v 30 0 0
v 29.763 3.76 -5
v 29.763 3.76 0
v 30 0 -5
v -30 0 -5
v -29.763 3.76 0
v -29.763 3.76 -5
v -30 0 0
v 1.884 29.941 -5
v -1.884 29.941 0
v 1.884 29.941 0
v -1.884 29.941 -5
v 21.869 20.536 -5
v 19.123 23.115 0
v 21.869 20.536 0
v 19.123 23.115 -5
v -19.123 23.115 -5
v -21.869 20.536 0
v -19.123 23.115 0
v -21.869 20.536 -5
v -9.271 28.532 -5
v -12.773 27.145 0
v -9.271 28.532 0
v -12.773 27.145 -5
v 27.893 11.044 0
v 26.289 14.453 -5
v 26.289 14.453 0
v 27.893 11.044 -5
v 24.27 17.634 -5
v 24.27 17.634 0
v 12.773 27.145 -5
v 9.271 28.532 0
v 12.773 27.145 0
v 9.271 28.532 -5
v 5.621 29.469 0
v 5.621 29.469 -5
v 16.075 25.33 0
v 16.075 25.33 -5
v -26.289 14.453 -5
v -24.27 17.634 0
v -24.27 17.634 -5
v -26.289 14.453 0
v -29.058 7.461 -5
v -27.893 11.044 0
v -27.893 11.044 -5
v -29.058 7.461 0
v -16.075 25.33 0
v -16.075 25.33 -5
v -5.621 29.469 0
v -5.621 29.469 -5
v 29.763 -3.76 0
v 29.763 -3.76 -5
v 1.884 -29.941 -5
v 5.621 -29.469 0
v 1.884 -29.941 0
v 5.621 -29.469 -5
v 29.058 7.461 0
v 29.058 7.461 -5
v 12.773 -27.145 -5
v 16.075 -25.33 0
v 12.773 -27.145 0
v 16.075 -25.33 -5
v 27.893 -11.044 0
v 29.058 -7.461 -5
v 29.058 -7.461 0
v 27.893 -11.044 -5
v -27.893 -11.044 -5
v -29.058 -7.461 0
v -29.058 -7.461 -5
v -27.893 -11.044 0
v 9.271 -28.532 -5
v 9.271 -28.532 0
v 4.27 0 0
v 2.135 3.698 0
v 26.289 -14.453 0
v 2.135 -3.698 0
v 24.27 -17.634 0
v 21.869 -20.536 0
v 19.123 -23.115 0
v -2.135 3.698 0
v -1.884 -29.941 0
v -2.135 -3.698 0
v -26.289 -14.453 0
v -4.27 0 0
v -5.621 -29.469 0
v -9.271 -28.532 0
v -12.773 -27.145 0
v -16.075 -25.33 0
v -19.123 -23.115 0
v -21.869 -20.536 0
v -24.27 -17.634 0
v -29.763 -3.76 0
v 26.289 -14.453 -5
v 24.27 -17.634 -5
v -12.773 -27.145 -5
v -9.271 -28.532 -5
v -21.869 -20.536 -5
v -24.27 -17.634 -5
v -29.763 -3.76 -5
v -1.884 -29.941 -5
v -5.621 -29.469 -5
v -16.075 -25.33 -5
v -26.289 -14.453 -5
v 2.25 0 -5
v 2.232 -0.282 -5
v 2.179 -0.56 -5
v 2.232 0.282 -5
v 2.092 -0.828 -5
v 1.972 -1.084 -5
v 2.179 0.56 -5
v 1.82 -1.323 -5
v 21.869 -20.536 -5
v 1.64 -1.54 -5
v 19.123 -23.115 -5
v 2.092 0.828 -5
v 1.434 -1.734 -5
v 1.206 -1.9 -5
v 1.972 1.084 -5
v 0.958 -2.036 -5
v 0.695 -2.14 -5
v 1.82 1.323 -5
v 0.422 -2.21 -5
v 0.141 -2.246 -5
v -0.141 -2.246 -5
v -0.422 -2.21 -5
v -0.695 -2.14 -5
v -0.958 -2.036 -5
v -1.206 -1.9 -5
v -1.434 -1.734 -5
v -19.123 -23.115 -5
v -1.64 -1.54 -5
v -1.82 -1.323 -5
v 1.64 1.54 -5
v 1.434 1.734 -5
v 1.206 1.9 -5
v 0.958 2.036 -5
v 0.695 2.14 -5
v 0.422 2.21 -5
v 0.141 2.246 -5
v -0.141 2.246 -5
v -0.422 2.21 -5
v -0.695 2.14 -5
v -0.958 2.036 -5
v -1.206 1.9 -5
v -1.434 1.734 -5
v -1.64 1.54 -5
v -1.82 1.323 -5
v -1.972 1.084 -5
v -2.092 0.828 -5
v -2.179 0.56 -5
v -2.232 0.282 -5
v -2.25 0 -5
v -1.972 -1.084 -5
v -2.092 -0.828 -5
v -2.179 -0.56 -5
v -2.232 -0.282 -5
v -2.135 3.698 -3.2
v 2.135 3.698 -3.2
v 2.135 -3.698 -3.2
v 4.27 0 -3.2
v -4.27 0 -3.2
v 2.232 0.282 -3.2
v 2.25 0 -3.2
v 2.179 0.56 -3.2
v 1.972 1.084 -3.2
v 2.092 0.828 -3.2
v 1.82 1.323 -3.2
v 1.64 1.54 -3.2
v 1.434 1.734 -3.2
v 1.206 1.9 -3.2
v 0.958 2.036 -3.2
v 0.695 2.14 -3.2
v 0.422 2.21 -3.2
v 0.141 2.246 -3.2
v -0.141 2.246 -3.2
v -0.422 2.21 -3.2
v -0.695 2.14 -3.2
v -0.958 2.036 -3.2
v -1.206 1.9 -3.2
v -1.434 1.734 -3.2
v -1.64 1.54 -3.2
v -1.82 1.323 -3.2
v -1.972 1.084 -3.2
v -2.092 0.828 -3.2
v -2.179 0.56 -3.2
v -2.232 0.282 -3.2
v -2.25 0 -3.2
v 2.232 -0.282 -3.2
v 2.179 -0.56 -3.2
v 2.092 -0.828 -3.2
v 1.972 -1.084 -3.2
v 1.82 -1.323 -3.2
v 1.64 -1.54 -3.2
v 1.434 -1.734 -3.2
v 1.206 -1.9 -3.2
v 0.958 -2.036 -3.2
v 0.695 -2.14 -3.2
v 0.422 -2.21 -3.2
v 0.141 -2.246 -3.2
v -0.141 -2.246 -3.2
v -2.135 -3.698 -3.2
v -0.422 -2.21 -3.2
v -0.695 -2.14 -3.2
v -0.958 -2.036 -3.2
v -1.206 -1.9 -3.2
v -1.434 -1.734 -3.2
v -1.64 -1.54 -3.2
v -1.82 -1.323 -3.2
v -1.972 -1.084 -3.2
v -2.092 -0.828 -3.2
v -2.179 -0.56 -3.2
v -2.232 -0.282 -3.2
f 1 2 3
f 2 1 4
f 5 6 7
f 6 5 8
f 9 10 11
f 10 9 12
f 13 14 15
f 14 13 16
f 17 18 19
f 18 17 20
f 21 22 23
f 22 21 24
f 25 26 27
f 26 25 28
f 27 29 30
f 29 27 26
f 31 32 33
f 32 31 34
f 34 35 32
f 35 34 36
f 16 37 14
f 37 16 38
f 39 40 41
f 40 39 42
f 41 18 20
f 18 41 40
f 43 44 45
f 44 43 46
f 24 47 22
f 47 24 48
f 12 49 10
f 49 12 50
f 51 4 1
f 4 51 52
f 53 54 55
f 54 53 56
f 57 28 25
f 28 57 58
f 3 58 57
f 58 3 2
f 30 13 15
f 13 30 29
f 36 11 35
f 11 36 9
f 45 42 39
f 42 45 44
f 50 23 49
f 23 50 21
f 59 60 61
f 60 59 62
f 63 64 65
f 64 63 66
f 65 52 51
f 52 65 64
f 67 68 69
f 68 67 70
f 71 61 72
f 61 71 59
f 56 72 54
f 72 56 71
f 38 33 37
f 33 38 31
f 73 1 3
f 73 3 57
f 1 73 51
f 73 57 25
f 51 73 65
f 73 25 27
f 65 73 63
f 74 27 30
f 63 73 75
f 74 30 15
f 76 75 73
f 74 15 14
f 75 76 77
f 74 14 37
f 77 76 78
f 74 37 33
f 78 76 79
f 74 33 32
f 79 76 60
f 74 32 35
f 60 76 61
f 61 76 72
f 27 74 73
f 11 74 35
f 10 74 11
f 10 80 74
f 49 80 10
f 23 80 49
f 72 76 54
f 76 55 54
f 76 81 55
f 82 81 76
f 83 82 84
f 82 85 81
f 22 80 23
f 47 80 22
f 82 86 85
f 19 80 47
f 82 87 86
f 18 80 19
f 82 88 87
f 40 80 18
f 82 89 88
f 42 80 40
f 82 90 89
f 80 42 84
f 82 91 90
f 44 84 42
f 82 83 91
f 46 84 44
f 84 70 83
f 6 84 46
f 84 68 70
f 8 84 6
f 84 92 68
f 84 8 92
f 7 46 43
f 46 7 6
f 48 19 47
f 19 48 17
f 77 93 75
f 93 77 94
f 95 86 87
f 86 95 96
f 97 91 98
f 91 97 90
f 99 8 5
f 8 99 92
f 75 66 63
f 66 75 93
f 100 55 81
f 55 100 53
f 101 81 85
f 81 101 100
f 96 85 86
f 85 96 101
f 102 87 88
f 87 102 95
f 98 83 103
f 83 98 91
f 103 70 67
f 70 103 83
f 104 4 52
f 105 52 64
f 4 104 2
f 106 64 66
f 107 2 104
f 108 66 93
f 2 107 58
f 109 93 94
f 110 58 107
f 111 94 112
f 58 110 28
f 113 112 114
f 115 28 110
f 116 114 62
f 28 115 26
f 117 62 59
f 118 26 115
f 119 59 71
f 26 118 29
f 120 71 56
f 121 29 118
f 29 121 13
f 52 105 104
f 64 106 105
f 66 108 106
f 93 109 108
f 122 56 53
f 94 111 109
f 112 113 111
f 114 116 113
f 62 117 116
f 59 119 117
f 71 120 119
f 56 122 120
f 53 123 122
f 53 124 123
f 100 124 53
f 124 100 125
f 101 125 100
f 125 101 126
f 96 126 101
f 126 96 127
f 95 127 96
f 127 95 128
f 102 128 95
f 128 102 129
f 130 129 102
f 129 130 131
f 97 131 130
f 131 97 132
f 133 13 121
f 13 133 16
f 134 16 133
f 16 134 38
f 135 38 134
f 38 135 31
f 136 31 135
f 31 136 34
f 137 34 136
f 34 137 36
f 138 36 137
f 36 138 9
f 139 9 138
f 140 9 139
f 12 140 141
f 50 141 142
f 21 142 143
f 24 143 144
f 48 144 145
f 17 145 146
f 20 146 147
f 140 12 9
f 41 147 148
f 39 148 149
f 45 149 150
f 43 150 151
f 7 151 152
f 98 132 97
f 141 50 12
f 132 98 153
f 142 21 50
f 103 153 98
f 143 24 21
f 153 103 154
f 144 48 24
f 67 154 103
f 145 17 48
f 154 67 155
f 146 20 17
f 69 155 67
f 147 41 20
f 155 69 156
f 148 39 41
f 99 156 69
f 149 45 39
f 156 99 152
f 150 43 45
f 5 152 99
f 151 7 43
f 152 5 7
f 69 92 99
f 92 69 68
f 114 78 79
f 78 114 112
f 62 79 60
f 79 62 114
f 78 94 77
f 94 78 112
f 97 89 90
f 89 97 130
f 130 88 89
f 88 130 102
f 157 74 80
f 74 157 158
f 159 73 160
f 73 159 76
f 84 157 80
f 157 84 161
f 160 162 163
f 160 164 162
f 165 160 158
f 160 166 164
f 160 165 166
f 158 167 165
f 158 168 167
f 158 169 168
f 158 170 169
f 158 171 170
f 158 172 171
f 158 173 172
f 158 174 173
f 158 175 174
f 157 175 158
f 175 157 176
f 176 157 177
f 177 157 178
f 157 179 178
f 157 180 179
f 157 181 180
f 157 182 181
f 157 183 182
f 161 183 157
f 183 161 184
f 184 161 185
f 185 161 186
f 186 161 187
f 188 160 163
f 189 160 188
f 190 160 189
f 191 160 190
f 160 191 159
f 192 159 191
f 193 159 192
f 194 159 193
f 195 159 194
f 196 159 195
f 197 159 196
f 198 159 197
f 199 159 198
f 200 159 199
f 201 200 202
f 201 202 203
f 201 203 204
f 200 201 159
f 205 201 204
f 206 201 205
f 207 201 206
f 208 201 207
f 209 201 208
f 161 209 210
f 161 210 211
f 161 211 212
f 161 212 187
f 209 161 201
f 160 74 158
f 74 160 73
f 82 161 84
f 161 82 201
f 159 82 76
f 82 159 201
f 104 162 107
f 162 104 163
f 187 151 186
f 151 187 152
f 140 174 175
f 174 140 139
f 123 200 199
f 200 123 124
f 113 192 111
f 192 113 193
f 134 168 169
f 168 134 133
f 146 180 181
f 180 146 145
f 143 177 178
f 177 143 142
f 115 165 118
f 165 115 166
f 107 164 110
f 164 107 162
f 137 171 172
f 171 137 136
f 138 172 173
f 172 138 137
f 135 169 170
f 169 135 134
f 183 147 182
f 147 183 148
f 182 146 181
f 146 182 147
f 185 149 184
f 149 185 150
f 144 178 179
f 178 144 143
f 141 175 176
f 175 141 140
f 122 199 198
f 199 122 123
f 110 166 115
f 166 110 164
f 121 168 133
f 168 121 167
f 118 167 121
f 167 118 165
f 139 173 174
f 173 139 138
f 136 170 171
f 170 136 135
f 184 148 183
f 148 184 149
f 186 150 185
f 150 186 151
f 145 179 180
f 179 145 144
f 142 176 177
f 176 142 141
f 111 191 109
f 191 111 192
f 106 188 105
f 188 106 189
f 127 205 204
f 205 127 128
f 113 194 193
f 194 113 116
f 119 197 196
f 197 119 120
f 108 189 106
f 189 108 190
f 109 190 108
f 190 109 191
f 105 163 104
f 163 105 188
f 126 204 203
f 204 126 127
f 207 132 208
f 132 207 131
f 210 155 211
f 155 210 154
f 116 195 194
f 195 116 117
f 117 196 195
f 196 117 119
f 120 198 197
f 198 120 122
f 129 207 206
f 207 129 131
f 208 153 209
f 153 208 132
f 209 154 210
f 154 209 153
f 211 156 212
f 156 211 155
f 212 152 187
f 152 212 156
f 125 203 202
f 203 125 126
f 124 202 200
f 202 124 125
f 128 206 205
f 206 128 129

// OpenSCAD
$fn = 50;


difference() {
	union() {
		translate(v = [0, 0, -5.0000000000]) {
			cylinder(h = 5.0000000000, r = 30.0000000000);
		}
		translate(v = [0, 0, -3.5000000000]) {
			cylinder(h = 3.5000000000, r = 2.8750000000);
		}
	}
	union() {
		translate(v = [0, 0, 0]) {
			rotate(a = [0, 0, 0]) {
				difference() {
					union() {
						translate(v = [0, 0, -3.2000000000]) {
							#linear_extrude(height = 3.2000000000) {
								polygon(points = [[4.2698000000, 0.0000000000], [2.1349000000, 3.6977552691], [-2.1349000000, 3.6977552691], [-4.2698000000, 0.0000000000], [-2.1349000000, -3.6977552691], [2.1349000000, -3.6977552691]]);
							}
						}
					}
					union();
				}
			}
		}
		#translate(v = [0, 0, -100.0000000000]) {
			cylinder(h = 200, r = 2.2500000000);
		}
	}
}
